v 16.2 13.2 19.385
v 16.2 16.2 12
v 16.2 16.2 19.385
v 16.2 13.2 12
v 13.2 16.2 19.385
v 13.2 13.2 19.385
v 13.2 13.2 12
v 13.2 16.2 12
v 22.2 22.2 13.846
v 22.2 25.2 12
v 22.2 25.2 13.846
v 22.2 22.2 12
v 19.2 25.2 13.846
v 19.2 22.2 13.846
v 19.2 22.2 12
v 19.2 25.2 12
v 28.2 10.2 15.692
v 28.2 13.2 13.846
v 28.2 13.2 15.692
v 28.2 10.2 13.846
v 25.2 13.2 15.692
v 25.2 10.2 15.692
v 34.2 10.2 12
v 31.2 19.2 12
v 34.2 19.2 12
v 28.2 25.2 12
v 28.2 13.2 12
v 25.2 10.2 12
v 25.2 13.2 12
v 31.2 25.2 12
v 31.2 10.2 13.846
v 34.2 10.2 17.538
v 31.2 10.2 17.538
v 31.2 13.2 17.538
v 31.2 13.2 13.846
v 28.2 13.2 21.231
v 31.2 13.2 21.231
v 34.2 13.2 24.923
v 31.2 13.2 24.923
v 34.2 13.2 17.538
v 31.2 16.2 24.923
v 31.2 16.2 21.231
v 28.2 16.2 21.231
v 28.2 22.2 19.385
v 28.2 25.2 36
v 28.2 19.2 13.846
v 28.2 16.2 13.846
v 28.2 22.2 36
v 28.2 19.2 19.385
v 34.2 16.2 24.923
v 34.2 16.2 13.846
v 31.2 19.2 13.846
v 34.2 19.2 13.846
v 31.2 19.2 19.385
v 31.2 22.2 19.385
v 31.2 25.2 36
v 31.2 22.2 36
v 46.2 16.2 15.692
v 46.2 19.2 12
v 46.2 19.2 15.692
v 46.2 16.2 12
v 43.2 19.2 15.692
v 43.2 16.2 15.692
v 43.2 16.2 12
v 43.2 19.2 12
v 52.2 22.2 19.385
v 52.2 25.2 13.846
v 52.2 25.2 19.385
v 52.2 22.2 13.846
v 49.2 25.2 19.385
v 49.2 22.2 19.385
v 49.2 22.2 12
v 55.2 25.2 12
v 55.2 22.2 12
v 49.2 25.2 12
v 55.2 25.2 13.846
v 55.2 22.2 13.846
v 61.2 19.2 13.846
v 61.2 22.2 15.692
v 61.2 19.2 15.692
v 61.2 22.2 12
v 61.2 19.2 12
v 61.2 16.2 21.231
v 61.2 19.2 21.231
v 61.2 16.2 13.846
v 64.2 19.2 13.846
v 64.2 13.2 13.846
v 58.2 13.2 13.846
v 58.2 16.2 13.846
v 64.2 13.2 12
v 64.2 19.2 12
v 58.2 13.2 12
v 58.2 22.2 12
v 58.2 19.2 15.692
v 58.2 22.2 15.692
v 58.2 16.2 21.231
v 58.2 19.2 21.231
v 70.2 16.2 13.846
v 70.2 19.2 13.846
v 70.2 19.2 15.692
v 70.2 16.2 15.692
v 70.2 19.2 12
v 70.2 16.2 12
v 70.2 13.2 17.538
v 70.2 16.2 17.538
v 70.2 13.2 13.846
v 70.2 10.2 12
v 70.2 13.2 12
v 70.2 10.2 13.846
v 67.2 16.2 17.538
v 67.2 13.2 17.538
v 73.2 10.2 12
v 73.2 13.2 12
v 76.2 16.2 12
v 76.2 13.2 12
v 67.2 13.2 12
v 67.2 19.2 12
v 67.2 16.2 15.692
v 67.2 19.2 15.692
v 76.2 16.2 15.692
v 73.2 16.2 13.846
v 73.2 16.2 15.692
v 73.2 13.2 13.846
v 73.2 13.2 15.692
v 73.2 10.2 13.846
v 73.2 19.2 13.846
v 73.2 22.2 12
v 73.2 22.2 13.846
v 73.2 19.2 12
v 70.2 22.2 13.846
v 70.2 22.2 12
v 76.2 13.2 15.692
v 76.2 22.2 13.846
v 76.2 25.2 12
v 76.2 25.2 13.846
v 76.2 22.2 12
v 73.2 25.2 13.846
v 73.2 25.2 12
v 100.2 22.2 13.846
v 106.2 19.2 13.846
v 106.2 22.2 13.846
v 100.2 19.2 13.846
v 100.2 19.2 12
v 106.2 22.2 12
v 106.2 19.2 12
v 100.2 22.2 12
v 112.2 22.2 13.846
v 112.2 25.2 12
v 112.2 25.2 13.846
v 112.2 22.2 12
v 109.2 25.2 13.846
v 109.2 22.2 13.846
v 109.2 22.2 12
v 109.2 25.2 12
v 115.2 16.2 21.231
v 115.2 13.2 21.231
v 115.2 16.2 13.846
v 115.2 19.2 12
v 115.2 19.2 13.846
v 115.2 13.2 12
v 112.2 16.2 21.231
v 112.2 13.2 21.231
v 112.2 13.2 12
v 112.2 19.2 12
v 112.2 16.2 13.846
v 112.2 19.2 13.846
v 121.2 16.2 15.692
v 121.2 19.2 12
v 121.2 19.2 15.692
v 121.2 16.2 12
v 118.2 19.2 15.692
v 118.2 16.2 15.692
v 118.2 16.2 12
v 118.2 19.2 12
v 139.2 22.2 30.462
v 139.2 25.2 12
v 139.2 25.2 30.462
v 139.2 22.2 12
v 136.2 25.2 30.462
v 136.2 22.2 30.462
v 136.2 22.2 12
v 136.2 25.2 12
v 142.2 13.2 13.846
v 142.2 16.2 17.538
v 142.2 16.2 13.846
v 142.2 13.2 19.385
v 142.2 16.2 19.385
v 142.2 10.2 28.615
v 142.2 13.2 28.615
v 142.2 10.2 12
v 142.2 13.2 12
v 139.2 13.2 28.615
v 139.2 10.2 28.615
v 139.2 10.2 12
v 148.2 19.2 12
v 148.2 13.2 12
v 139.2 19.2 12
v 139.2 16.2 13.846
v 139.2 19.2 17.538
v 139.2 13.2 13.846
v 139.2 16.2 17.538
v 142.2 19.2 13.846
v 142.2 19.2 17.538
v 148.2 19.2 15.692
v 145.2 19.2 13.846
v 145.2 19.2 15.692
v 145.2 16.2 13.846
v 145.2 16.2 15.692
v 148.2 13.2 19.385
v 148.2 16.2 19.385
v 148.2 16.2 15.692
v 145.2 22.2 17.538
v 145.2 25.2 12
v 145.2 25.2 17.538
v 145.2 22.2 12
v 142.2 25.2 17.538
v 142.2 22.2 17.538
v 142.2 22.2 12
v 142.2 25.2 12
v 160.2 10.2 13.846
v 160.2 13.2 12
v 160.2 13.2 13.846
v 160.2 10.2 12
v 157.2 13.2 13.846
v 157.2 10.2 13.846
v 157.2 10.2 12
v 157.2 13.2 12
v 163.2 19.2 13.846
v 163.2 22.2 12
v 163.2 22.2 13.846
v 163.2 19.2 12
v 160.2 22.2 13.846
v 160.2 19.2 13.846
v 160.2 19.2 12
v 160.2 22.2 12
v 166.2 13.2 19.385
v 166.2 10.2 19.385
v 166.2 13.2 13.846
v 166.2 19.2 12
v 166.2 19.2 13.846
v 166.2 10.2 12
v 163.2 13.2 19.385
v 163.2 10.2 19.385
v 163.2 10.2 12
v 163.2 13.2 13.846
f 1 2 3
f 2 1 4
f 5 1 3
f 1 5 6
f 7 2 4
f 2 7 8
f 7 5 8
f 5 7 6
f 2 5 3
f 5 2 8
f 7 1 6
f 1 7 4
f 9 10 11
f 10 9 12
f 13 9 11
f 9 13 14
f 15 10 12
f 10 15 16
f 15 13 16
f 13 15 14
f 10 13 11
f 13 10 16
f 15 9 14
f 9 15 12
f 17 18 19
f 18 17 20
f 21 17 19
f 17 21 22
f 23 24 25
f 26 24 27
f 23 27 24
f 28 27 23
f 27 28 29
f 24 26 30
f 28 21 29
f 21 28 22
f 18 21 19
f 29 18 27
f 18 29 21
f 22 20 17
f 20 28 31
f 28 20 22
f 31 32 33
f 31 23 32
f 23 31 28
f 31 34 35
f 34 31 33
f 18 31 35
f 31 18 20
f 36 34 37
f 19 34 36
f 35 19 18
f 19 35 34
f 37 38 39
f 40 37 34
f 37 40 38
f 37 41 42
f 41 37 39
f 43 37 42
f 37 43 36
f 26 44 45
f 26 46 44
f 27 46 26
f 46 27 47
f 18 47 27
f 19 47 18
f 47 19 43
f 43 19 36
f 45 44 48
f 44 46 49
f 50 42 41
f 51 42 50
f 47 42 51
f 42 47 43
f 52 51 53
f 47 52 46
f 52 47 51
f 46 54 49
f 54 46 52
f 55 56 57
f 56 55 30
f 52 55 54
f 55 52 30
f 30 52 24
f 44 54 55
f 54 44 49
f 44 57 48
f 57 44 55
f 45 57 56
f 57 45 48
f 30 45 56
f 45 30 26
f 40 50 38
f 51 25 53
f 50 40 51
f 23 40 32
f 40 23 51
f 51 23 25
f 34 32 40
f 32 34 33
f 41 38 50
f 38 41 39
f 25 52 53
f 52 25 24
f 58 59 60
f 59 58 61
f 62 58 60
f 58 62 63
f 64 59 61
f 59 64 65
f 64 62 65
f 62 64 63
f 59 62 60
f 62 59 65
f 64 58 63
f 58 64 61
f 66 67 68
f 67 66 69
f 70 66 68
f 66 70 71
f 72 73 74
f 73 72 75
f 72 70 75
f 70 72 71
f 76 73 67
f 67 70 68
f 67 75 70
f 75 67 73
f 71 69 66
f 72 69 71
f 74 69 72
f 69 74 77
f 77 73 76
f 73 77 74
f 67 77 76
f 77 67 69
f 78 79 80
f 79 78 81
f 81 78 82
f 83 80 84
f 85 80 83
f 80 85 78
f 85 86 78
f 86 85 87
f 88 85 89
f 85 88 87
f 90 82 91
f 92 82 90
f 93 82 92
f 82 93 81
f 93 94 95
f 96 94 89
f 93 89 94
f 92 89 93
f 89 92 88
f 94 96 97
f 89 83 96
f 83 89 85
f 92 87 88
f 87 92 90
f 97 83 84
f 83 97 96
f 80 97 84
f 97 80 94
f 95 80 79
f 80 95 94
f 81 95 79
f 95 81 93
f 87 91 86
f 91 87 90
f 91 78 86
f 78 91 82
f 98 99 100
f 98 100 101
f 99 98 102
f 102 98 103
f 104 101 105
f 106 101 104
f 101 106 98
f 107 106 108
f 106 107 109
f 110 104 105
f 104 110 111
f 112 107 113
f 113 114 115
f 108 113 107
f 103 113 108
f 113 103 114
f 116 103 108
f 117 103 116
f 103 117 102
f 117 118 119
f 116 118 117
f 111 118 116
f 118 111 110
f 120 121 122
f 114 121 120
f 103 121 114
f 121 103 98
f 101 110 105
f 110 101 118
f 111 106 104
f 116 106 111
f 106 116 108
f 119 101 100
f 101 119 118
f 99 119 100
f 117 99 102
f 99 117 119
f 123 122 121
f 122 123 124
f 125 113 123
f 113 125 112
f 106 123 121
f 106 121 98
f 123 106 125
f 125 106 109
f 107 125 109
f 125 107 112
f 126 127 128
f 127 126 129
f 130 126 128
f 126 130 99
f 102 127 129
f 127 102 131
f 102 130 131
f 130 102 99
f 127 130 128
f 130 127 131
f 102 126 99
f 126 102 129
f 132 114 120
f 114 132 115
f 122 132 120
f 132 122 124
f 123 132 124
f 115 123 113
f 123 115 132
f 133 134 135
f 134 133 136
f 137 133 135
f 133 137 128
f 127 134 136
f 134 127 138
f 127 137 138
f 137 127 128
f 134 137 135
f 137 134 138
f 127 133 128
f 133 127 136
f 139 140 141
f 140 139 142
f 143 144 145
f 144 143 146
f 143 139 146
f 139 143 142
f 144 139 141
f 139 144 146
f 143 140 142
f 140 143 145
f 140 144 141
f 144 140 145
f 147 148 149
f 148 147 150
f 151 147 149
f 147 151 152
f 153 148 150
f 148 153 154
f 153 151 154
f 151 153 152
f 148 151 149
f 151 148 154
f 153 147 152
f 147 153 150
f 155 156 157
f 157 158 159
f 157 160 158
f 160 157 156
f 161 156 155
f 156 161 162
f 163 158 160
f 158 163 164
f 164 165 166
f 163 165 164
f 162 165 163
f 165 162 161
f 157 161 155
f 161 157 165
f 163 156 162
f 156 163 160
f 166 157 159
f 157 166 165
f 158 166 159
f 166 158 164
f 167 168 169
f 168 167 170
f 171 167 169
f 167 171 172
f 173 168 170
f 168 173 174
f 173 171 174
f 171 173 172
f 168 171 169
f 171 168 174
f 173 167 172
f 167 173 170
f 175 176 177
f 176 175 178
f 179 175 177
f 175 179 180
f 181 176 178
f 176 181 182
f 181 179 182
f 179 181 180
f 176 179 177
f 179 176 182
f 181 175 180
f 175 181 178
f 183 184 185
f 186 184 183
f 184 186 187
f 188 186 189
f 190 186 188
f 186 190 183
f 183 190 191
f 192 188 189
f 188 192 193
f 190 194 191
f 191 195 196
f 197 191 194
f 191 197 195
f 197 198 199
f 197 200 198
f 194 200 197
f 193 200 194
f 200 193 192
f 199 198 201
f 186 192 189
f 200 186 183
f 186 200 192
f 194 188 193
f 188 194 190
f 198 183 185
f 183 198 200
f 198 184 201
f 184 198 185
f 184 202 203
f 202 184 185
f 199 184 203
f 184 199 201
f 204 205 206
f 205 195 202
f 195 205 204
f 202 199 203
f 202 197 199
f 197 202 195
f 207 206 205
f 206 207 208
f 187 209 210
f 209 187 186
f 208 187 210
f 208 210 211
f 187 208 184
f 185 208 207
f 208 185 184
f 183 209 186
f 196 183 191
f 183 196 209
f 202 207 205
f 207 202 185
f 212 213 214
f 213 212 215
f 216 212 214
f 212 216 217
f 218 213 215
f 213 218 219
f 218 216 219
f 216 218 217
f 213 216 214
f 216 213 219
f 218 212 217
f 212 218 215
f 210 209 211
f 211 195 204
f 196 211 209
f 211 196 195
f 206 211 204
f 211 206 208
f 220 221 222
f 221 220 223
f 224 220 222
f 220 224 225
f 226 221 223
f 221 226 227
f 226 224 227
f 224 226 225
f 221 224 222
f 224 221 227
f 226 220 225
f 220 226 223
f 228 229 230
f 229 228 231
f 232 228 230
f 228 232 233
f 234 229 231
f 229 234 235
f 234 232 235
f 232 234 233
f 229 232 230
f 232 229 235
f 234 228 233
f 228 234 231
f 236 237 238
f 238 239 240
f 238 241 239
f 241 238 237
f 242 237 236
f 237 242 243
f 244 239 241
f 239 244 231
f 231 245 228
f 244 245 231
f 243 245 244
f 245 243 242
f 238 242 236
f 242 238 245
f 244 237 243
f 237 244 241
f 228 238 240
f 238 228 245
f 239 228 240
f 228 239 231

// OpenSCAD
union() {
	translate(v = [13.200000000000001, 13.200000000000001, 12.0]) {
		cube(size = [3.0, 3.0, 7.384615384615385]);
	}
	translate(v = [19.200000000000003, 22.200000000000003, 12.0]) {
		cube(size = [3.0, 3.0, 1.8461538461538463]);
	}
	translate(v = [25.200000000000003, 10.200000000000001, 12.0]) {
		cube(size = [3.0, 3.0, 3.6923076923076925]);
	}
	translate(v = [28.200000000000003, 10.200000000000001, 12.0]) {
		cube(size = [3.0, 3.0, 1.8461538461538463]);
	}
	translate(v = [28.200000000000003, 13.200000000000001, 12.0]) {
		cube(size = [3.0, 3.0, 9.23076923076923]);
	}
	translate(v = [28.200000000000003, 16.200000000000003, 12.0]) {
		cube(size = [3.0, 3.0, 1.8461538461538463]);
	}
	translate(v = [28.200000000000003, 19.200000000000003, 12.0]) {
		cube(size = [3.0, 3.0, 7.384615384615385]);
	}
	translate(v = [28.200000000000003, 22.200000000000003, 12.0]) {
		cube(size = [3.0, 3.0, 24.0]);
	}
	translate(v = [31.200000000000003, 10.200000000000001, 12.0]) {
		cube(size = [3.0, 3.0, 5.538461538461538]);
	}
	translate(v = [31.200000000000003, 13.200000000000001, 12.0]) {
		cube(size = [3.0, 3.0, 12.923076923076923]);
	}
	translate(v = [31.200000000000003, 16.200000000000003, 12.0]) {
		cube(size = [3.0, 3.0, 1.8461538461538463]);
	}
	translate(v = [43.2, 16.200000000000003, 12.0]) {
		cube(size = [3.0, 3.0, 3.6923076923076925]);
	}
	translate(v = [49.2, 22.200000000000003, 12.0]) {
		cube(size = [3.0, 3.0, 7.384615384615385]);
	}
	translate(v = [52.2, 22.200000000000003, 12.0]) {
		cube(size = [3.0, 3.0, 1.8461538461538463]);
	}
	translate(v = [58.2, 13.200000000000001, 12.0]) {
		cube(size = [3.0, 3.0, 1.8461538461538463]);
	}
	translate(v = [58.2, 16.200000000000003, 12.0]) {
		cube(size = [3.0, 3.0, 9.23076923076923]);
	}
	translate(v = [58.2, 19.200000000000003, 12.0]) {
		cube(size = [3.0, 3.0, 3.6923076923076925]);
	}
	translate(v = [61.2, 13.200000000000001, 12.0]) {
		cube(size = [3.0, 3.0, 1.8461538461538463]);
	}
	translate(v = [61.2, 16.200000000000003, 12.0]) {
		cube(size = [3.0, 3.0, 1.8461538461538463]);
	}
	translate(v = [67.2, 13.200000000000001, 12.0]) {
		cube(size = [3.0, 3.0, 5.538461538461538]);
	}
	translate(v = [67.2, 16.200000000000003, 12.0]) {
		cube(size = [3.0, 3.0, 3.6923076923076925]);
	}
	translate(v = [70.2, 10.200000000000001, 12.0]) {
		cube(size = [3.0, 3.0, 1.8461538461538463]);
	}
	translate(v = [70.2, 13.200000000000001, 12.0]) {
		cube(size = [3.0, 3.0, 1.8461538461538463]);
	}
	translate(v = [70.2, 19.200000000000003, 12.0]) {
		cube(size = [3.0, 3.0, 1.8461538461538463]);
	}
	translate(v = [73.2, 13.200000000000001, 12.0]) {
		cube(size = [3.0, 3.0, 3.6923076923076925]);
	}
	translate(v = [73.2, 22.200000000000003, 12.0]) {
		cube(size = [3.0, 3.0, 1.8461538461538463]);
	}
	translate(v = [100.2, 19.200000000000003, 12.0]) {
		cube(size = [3.0, 3.0, 1.8461538461538463]);
	}
	translate(v = [103.2, 19.200000000000003, 12.0]) {
		cube(size = [3.0, 3.0, 1.8461538461538463]);
	}
	translate(v = [109.2, 22.200000000000003, 12.0]) {
		cube(size = [3.0, 3.0, 1.8461538461538463]);
	}
	translate(v = [112.2, 13.200000000000001, 12.0]) {
		cube(size = [3.0, 3.0, 9.23076923076923]);
	}
	translate(v = [112.2, 16.200000000000003, 12.0]) {
		cube(size = [3.0, 3.0, 1.8461538461538463]);
	}
	translate(v = [118.2, 16.200000000000003, 12.0]) {
		cube(size = [3.0, 3.0, 3.6923076923076925]);
	}
	translate(v = [136.2, 22.200000000000003, 12.0]) {
		cube(size = [3.0, 3.0, 18.46153846153846]);
	}
	translate(v = [139.2, 10.200000000000001, 12.0]) {
		cube(size = [3.0, 3.0, 16.615384615384617]);
	}
	translate(v = [139.2, 13.200000000000001, 12.0]) {
		cube(size = [3.0, 3.0, 1.8461538461538463]);
	}
	translate(v = [139.2, 16.200000000000003, 12.0]) {
		cube(size = [3.0, 3.0, 5.538461538461538]);
	}
	translate(v = [142.2, 13.200000000000001, 12.0]) {
		cube(size = [3.0, 3.0, 7.384615384615385]);
	}
	translate(v = [142.2, 16.200000000000003, 12.0]) {
		cube(size = [3.0, 3.0, 1.8461538461538463]);
	}
	translate(v = [142.2, 22.200000000000003, 12.0]) {
		cube(size = [3.0, 3.0, 5.538461538461538]);
	}
	translate(v = [145.2, 13.200000000000001, 12.0]) {
		cube(size = [3.0, 3.0, 7.384615384615385]);
	}
	translate(v = [145.2, 16.200000000000003, 12.0]) {
		cube(size = [3.0, 3.0, 3.6923076923076925]);
	}
	translate(v = [157.2, 10.200000000000001, 12.0]) {
		cube(size = [3.0, 3.0, 1.8461538461538463]);
	}
	translate(v = [160.2, 19.200000000000003, 12.0]) {
		cube(size = [3.0, 3.0, 1.8461538461538463]);
	}
	translate(v = [163.2, 10.200000000000001, 12.0]) {
		cube(size = [3.0, 3.0, 7.384615384615385]);
	}
	translate(v = [163.2, 13.200000000000001, 12.0]) {
		cube(size = [3.0, 3.0, 1.8461538461538463]);
	}
	translate(v = [163.2, 16.200000000000003, 12.0]) {
		cube(size = [3.0, 3.0, 1.8461538461538463]);
	}
}
